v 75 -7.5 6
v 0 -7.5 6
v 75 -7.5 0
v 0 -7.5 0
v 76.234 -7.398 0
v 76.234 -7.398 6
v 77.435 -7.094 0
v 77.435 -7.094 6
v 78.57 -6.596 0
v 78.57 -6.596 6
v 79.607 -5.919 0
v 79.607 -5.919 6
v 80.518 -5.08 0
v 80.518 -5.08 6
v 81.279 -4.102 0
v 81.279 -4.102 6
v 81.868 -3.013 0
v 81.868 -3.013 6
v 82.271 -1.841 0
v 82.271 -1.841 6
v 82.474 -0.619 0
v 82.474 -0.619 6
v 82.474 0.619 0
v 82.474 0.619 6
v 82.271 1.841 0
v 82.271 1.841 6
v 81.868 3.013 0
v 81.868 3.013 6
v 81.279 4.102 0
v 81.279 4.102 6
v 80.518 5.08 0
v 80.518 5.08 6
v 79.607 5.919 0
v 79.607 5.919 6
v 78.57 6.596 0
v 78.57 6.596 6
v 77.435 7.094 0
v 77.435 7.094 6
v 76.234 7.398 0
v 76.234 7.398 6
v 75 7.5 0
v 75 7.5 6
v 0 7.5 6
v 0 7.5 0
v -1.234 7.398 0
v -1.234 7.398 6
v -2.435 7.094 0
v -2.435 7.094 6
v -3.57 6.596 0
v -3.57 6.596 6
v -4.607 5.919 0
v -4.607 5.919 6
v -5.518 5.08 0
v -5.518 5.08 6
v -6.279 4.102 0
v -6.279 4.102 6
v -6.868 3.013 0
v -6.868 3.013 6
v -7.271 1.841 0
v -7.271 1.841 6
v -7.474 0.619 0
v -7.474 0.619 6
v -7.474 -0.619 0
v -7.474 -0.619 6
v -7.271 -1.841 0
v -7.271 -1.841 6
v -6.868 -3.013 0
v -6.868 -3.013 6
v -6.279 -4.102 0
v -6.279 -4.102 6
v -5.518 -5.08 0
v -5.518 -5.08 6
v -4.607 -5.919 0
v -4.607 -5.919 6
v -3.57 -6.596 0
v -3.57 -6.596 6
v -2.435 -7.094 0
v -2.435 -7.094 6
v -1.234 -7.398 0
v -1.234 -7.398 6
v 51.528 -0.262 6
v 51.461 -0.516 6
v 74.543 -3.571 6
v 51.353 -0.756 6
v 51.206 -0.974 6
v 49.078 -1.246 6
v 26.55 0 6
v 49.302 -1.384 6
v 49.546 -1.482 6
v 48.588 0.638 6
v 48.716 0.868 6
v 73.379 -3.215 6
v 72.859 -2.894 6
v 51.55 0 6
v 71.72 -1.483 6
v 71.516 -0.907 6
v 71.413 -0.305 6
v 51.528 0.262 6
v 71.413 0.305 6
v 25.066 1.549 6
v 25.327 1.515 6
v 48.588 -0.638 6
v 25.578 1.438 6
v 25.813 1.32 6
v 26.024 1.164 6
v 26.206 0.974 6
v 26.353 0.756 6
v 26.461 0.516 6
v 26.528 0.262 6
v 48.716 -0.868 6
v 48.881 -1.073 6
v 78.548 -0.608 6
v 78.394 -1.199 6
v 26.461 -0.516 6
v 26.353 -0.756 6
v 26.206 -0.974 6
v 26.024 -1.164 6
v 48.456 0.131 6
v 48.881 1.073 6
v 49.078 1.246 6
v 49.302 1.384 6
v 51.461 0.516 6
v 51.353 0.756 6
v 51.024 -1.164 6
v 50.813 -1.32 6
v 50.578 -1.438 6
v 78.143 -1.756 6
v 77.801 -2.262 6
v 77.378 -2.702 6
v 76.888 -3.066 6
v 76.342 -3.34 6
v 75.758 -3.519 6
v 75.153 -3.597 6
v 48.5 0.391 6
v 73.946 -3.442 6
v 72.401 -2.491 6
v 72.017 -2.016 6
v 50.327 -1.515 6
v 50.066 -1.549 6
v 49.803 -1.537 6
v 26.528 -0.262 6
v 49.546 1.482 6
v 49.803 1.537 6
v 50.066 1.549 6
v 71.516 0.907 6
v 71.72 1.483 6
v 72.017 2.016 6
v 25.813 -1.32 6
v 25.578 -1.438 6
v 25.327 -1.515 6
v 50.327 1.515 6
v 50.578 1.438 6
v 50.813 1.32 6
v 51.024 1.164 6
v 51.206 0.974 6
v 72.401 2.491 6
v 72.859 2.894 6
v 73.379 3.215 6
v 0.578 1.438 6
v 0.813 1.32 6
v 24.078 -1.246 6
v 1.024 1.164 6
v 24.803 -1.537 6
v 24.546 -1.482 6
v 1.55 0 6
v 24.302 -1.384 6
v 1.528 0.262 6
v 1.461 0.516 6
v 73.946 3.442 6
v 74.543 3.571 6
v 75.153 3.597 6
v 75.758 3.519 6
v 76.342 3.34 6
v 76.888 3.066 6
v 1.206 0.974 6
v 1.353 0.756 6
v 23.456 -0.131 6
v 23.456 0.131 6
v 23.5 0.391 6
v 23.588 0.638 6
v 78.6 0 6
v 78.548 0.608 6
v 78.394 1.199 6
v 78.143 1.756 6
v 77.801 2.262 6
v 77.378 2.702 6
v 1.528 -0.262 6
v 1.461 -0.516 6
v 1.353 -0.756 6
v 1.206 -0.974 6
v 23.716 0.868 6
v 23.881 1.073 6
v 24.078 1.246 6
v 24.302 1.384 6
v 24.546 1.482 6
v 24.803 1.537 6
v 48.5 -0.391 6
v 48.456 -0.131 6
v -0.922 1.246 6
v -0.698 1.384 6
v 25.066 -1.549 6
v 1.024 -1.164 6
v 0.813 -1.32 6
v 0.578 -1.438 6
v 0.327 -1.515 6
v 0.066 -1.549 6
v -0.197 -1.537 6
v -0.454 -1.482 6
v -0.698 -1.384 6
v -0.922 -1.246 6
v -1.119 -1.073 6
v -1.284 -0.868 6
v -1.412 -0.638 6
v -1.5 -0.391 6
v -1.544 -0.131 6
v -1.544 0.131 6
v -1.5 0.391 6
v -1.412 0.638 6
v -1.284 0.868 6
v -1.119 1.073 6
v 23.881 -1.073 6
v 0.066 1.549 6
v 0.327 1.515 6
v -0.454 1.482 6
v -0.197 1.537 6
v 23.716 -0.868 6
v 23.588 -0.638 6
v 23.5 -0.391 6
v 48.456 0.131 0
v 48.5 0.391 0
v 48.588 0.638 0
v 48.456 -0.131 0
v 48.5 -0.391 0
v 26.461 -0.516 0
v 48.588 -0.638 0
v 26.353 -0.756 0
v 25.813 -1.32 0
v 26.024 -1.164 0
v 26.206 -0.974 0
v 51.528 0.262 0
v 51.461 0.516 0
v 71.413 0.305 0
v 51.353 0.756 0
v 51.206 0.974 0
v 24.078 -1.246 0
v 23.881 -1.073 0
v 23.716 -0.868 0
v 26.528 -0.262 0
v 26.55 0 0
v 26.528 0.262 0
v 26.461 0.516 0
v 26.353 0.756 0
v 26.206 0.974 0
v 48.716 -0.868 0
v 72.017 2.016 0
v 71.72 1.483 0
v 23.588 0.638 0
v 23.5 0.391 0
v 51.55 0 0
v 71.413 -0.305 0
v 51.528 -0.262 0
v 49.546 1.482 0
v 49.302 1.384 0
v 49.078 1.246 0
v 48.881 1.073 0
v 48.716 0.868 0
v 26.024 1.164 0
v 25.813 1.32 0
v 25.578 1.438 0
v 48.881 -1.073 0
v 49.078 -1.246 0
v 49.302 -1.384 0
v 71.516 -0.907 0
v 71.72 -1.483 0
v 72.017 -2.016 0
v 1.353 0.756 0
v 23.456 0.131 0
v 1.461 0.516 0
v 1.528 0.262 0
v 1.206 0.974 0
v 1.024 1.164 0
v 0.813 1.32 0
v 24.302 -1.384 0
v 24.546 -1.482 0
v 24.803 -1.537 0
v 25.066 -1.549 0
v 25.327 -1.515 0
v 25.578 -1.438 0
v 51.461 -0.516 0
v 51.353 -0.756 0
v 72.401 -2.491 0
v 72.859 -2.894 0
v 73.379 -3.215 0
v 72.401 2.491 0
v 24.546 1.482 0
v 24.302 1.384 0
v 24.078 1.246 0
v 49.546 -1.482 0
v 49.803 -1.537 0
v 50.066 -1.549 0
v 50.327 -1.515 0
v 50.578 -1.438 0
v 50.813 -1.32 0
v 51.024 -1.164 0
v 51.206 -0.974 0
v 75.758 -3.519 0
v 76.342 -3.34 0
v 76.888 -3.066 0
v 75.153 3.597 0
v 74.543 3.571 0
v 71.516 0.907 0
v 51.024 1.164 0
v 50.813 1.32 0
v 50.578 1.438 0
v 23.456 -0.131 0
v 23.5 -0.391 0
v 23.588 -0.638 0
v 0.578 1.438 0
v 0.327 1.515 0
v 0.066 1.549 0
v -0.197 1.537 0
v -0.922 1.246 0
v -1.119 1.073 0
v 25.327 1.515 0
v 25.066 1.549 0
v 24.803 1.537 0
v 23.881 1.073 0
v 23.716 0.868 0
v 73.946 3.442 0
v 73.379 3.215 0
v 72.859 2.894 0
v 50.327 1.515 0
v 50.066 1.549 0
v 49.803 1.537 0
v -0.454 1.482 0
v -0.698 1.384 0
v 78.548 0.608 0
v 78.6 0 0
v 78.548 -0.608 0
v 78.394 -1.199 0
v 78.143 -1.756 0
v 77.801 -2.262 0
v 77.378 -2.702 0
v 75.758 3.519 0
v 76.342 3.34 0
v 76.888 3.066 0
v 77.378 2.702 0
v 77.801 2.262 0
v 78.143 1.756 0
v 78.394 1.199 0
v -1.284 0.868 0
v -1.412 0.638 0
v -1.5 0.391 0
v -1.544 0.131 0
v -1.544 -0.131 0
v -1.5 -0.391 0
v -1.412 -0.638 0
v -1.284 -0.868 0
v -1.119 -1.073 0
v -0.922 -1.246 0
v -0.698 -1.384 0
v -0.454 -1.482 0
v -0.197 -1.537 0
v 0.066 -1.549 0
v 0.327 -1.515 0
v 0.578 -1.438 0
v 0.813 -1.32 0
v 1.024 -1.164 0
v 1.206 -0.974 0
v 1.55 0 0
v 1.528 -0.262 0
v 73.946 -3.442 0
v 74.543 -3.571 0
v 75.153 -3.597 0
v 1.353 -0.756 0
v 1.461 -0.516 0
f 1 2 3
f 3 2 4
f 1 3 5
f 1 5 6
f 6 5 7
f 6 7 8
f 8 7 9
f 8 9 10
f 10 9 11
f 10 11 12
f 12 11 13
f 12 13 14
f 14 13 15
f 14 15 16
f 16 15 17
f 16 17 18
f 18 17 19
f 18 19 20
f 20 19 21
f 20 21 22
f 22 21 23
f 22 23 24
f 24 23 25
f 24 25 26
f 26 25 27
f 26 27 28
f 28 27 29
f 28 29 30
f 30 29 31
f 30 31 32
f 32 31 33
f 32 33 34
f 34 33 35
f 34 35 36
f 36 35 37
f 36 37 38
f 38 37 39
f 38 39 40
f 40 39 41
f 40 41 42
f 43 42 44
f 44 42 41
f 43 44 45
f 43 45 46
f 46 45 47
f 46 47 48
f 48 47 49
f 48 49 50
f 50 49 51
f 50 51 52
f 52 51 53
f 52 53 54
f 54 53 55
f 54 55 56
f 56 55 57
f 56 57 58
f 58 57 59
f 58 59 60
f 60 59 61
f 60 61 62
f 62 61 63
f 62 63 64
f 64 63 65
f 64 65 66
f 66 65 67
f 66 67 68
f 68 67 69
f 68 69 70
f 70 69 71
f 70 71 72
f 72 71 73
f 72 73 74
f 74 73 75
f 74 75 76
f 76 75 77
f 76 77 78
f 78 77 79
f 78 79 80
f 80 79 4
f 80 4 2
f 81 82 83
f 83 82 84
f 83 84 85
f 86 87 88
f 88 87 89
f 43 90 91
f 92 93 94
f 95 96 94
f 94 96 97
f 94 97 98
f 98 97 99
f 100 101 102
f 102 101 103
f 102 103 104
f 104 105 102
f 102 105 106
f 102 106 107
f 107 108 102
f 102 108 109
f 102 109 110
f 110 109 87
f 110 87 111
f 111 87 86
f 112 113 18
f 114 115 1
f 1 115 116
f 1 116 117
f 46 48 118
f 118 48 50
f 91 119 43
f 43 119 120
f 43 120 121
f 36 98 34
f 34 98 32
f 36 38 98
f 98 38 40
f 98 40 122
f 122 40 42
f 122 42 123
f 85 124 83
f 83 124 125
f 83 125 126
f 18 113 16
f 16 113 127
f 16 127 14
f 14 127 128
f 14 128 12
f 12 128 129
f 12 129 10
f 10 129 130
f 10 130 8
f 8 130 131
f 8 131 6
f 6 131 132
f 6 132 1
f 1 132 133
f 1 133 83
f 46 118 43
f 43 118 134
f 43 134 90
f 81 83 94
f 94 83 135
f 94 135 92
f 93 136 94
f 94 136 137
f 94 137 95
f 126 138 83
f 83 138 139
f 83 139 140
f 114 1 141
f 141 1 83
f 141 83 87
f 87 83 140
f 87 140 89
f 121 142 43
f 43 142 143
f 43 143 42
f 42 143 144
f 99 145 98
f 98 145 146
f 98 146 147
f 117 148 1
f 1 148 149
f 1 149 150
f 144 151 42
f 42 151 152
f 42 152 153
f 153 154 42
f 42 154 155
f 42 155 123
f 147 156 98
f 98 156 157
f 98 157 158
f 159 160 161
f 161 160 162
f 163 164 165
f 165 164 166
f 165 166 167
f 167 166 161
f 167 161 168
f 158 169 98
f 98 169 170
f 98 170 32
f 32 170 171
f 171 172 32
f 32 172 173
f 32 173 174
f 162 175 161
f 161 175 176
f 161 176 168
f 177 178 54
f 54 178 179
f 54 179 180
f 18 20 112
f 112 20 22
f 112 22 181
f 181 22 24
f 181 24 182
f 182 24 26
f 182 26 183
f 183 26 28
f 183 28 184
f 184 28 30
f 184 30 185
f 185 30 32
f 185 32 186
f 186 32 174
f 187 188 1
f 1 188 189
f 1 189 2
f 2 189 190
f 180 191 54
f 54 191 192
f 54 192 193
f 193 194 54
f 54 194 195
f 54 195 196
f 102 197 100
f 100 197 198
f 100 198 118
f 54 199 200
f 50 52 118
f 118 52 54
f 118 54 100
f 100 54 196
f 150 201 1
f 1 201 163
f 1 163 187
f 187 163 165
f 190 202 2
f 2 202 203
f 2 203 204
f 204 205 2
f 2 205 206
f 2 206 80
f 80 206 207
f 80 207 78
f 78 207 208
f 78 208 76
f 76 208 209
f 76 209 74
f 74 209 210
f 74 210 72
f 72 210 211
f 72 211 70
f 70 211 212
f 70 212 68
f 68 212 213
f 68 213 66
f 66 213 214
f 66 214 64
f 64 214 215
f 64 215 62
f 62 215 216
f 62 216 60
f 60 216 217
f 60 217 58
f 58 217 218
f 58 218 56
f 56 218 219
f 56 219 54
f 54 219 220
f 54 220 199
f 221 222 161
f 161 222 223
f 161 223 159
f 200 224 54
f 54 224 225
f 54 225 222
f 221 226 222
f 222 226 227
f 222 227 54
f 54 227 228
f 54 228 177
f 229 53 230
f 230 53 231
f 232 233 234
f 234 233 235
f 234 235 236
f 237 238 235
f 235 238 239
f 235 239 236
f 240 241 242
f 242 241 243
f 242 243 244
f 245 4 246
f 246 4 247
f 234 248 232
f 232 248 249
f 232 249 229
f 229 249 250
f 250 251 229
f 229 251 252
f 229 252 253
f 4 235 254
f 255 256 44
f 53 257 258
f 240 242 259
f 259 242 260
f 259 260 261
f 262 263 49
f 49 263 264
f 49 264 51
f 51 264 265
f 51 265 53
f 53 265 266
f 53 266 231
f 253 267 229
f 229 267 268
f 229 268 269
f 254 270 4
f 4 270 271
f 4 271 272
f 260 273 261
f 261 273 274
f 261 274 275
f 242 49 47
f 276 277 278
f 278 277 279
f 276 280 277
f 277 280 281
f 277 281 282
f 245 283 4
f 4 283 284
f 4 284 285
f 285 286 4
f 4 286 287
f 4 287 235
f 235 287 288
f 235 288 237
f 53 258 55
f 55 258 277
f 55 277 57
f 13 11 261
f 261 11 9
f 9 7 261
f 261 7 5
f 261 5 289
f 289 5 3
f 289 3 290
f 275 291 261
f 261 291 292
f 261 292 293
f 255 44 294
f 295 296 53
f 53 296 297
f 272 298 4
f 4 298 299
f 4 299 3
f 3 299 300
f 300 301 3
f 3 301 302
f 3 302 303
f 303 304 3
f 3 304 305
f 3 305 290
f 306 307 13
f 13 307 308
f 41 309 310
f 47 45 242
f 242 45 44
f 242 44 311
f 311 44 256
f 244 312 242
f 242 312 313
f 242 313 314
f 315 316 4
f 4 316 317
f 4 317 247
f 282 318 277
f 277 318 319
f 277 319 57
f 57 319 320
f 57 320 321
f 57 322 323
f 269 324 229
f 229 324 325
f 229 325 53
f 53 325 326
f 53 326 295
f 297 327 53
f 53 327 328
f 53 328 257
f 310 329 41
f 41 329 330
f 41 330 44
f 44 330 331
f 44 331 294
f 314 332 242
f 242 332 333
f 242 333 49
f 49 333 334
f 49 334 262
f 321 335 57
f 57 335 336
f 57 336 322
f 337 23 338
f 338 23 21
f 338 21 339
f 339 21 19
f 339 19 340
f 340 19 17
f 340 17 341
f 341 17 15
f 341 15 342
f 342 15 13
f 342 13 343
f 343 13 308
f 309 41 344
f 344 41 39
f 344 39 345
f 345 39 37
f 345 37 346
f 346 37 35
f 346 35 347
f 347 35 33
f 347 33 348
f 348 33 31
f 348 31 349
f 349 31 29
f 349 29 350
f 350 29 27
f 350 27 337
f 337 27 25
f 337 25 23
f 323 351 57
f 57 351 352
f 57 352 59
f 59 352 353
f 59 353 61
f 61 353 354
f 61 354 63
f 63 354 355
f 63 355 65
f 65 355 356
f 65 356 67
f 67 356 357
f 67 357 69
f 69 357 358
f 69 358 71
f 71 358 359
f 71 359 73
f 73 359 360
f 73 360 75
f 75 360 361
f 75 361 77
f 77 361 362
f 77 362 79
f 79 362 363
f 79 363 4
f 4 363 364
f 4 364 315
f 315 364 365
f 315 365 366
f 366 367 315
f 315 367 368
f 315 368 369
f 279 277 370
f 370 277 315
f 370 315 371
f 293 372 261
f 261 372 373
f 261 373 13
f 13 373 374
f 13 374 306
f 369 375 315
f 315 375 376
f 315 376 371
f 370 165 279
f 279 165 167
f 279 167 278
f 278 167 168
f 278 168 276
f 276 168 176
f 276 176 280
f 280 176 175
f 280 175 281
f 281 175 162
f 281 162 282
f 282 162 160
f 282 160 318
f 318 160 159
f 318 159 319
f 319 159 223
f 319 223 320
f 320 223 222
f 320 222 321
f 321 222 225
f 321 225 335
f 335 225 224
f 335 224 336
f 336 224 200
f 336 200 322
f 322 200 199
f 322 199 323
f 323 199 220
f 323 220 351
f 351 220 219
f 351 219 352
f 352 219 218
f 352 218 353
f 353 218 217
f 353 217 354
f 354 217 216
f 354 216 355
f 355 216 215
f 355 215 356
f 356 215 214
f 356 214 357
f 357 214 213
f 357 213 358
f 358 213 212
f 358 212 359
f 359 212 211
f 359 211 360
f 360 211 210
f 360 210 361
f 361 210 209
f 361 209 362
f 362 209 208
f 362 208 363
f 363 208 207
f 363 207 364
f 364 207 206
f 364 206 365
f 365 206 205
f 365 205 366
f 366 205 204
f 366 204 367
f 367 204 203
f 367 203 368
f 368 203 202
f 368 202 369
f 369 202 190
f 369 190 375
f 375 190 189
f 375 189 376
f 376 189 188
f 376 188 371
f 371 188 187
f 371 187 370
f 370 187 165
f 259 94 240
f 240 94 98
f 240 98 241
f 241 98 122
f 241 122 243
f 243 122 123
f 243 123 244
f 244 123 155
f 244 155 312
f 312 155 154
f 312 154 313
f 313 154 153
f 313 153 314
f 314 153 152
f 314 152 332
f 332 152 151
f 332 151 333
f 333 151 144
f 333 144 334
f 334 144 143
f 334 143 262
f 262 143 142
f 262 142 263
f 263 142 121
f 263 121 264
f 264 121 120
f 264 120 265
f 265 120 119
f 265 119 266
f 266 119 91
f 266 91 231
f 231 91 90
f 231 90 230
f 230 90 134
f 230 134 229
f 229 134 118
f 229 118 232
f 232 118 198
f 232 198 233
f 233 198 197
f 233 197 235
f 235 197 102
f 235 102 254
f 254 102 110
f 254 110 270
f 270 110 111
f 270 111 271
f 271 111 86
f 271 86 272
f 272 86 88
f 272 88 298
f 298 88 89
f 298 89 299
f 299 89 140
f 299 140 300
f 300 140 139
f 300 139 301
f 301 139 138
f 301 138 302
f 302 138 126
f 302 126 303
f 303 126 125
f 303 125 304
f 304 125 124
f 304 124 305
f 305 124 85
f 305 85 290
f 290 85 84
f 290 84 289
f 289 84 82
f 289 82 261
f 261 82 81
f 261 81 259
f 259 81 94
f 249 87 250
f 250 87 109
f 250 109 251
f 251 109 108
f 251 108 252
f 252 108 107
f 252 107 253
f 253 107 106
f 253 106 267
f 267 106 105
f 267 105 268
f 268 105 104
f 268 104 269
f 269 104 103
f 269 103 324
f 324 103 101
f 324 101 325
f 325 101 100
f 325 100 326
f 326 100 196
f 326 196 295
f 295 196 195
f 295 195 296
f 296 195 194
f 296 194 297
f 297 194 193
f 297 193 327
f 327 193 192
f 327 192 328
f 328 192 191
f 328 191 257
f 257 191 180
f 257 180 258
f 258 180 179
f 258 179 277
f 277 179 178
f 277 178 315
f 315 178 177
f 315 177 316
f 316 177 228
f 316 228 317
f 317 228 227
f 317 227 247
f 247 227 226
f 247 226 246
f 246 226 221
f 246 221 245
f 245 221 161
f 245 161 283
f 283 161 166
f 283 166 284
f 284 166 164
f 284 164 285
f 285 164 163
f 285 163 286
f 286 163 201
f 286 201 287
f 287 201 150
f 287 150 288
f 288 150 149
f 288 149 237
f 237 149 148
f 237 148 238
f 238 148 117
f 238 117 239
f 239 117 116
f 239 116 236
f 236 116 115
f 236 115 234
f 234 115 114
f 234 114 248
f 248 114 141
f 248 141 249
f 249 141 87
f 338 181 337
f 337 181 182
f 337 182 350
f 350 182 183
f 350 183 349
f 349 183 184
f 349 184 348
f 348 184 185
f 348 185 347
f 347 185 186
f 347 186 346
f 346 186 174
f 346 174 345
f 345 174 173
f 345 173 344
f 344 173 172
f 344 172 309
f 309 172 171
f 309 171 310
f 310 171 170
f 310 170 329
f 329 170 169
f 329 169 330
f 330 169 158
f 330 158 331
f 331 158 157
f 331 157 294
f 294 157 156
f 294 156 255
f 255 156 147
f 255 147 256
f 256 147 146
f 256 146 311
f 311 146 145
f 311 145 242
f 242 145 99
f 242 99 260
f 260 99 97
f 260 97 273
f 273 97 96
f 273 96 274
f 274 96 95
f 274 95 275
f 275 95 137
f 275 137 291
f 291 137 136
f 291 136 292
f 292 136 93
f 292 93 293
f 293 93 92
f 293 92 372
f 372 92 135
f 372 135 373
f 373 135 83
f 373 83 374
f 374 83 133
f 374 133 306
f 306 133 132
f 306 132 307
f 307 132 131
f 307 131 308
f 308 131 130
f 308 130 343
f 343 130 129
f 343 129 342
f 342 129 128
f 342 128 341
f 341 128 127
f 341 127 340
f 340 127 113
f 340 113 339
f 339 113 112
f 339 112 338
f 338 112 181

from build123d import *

# Parameters (mm, degrees)
SKETCH1_R           = 7.5
BOSS_EXTRUDE1_DEPTH = 6
SKETCH2_R           = 1.3
CUT_EXTRUDE1_DEPTH  = 84.057209199
LPATTERN1_COUNT     = 4
LPATTERN1_PITCH     = 25
SKETCH3_R           = 3.35
CUT_EXTRUDE2_DEPTH  = 84.057209199


with BuildPart() as part:
    # Sketch1 → Boss-Extrude1 (new body)
    with BuildSketch(Plane.XY):
        with BuildLine():
            Line((75, 7.5), (0, 7.5))
            ThreePointArc((0, 7.5), (5.303300859, 5.303300859), (7.5, 0))
            ThreePointArc((7.5, 0), (5.303300859, -5.303300859), (0, -7.5))
            Line((0, -7.5), (75, -7.5))
            ThreePointArc((75, -7.5), (67.5, 0), (75, 7.5))
        make_face()
        with Locations((75, 0)):
            Circle(SKETCH1_R)
        Circle(SKETCH1_R)
    extrude(amount=BOSS_EXTRUDE1_DEPTH)

    # Sketch2 → Cut-Extrude1 (cut, through all)
    with BuildSketch(Plane.XY.offset(6)):
        Circle(SKETCH2_R)
        with Locations((75, 0)):
            Circle(SKETCH2_R)
    cut_extrude1 = extrude(amount=-CUT_EXTRUDE1_DEPTH, mode=Mode.SUBTRACT)

    # LPattern1: Cut-Extrude1 ×4
    with Locations(*[(i * LPATTERN1_PITCH, 0, 0) for i in range(1, LPATTERN1_COUNT)]):
        add(cut_extrude1, mode=Mode.SUBTRACT)

    # Sketch3 → Cut-Extrude2 (cut, through all)
    with BuildSketch(Plane.XY.offset(6)):
        with Locations((75, 0)):
            Circle(SKETCH3_R)
    extrude(amount=-CUT_EXTRUDE2_DEPTH, mode=Mode.SUBTRACT)


solid = part.part
